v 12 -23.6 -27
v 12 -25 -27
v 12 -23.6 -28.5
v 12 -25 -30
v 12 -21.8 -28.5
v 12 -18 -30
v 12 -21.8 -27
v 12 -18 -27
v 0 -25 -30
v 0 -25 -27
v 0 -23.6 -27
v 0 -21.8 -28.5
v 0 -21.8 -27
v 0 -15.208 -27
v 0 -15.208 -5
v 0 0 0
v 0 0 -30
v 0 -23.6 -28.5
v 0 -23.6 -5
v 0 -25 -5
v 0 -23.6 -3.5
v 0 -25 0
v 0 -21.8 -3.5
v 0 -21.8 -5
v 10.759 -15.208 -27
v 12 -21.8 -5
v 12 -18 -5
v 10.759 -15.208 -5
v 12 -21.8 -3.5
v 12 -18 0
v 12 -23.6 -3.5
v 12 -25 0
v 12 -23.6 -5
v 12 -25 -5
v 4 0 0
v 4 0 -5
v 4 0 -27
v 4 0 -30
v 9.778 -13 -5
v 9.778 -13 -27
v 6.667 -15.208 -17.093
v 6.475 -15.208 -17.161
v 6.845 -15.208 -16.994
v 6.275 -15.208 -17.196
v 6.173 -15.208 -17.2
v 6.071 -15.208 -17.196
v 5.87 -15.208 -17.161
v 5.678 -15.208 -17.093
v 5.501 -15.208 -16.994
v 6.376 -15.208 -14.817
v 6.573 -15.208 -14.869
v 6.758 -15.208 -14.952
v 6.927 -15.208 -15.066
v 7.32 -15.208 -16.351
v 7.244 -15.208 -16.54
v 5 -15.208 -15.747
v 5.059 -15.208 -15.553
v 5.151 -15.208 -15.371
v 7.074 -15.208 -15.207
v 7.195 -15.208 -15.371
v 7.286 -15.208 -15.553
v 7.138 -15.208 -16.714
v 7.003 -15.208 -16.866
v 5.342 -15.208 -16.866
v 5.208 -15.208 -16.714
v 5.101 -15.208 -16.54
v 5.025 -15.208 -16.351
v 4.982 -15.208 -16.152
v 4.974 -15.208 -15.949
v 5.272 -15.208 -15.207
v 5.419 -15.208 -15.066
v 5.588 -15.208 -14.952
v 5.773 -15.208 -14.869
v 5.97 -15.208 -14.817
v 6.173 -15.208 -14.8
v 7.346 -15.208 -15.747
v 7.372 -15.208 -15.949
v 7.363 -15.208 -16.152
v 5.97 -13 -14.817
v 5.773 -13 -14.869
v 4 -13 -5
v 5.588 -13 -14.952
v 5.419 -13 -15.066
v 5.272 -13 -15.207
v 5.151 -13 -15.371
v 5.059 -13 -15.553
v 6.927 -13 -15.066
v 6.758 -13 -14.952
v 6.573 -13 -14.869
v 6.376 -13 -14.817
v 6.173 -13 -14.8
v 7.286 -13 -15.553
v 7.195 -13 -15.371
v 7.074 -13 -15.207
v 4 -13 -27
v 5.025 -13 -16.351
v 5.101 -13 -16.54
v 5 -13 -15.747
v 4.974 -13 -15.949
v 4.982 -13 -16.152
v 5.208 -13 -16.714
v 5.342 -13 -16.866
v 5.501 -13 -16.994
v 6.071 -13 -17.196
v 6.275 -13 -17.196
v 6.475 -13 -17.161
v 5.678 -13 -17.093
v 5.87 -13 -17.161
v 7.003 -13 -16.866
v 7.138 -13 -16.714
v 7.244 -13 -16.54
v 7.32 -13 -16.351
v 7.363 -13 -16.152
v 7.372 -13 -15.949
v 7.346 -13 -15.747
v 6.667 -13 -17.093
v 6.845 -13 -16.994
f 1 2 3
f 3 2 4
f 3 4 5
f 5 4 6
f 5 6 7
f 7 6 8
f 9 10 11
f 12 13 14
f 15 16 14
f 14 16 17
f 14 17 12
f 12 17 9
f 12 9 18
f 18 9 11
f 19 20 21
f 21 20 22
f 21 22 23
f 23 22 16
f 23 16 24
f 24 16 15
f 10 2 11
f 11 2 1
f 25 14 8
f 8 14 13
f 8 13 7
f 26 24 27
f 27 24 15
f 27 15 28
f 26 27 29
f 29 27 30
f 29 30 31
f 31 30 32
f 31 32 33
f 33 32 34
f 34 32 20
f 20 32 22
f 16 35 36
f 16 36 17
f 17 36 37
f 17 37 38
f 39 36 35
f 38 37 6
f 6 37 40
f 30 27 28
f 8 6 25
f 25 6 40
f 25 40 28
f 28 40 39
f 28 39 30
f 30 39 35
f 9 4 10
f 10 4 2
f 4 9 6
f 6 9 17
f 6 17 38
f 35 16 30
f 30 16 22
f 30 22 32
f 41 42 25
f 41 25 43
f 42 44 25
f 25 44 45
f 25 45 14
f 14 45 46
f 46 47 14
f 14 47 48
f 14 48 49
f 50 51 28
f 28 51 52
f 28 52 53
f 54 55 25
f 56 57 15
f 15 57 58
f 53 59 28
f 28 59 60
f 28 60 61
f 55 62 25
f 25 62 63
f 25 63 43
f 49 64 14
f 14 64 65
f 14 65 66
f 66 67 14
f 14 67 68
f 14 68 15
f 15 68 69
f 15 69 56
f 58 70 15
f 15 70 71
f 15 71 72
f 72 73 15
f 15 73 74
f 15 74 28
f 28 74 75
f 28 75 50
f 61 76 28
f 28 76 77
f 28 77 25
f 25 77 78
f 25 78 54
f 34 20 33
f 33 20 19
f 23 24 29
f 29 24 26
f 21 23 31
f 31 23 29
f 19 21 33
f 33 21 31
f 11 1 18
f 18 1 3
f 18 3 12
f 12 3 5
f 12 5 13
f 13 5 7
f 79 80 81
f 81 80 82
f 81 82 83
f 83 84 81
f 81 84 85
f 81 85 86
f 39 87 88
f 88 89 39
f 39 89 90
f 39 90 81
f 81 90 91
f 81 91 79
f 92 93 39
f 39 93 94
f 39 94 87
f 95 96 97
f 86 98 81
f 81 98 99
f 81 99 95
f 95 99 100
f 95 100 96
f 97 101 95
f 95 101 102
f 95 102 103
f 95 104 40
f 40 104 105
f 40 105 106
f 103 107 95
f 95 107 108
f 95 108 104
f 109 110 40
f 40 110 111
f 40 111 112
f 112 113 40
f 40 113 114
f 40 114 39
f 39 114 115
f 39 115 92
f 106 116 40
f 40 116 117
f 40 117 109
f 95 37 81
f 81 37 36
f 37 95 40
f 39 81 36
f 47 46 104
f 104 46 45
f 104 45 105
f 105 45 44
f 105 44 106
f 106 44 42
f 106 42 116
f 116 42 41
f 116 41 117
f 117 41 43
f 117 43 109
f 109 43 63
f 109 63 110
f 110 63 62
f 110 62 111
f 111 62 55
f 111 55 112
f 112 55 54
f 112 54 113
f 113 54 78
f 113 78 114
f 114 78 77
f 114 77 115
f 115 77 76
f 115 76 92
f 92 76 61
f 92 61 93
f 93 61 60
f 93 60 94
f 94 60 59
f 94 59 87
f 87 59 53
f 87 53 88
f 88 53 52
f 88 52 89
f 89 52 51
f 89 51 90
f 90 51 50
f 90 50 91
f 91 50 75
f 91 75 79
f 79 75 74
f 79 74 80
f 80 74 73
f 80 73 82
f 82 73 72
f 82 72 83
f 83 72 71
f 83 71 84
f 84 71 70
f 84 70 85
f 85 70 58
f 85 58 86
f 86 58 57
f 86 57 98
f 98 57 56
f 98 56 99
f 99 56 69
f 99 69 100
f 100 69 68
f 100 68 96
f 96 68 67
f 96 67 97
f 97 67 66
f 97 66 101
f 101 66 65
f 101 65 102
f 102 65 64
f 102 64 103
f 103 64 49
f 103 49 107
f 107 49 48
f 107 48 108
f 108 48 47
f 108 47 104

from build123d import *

# Parameters (mm, degrees)
BOSS_EXTRUDE1_DEPTH = 30
SKETCH4_W           = 22
SKETCH4_H           = 10
CUT_EXTRUDE2_DEPTH  = 15
SKETCH5_W           = 1.5
SKETCH5_H           = 1.8
CUT_EXTRUDE3_DEPTH  = 15
CUT_EXTRUDE4_DEPTH  = 11
SKETCH7_R           = 1.2
CUT_EXTRUDE5_DEPTH  = 4


with BuildPart() as part:
    # Sketch1 → Boss-Extrude1 (new body)
    with BuildSketch(Plane.XY):
        Polygon((0, 0), (0, -25), (12, -25), (12, -18), (4, 0), align=None)
    extrude(amount=-BOSS_EXTRUDE1_DEPTH)

    # Sketch4 → Cut-Extrude2 (cut)
    with BuildSketch(Plane.ZY):
        with Locations((-16, -20.207997185)):
            Rectangle(SKETCH4_W, SKETCH4_H)
    extrude(amount=-CUT_EXTRUDE2_DEPTH, mode=Mode.SUBTRACT)

    # Sketch5 → Cut-Extrude3 (cut)
    with BuildSketch(Plane.ZY):
        with Locations((-4.25, -22.7)):
            Rectangle(SKETCH5_W, SKETCH5_H)
    cut_extrude3 = extrude(amount=-CUT_EXTRUDE3_DEPTH, mode=Mode.SUBTRACT)

    # Mirror1: Cut-Extrude3 across plane
    add(cut_extrude3.mirror(Plane.XY.offset(-16)), mode=Mode.SUBTRACT)

    # Sketch6 → Cut-Extrude4 (cut, symmetric)
    with BuildSketch(Plane.XY.offset(-16)):
        Polygon((4, 0), (4, -13), (9.777777778, -13), align=None)
    extrude(amount=CUT_EXTRUDE4_DEPTH, both=True, mode=Mode.SUBTRACT)

    # Sketch7 → Cut-Extrude5 (cut)
    with BuildSketch(Plane(origin=(0, -13, 0), x_dir=(1, 0, 0), z_dir=(0, 1, 0))):
        with Locations(Location((6.172753197, 16, 0), (0, 0, 270))):
            Circle(SKETCH7_R)
    extrude(amount=-CUT_EXTRUDE5_DEPTH, mode=Mode.SUBTRACT)


solid = part.part
